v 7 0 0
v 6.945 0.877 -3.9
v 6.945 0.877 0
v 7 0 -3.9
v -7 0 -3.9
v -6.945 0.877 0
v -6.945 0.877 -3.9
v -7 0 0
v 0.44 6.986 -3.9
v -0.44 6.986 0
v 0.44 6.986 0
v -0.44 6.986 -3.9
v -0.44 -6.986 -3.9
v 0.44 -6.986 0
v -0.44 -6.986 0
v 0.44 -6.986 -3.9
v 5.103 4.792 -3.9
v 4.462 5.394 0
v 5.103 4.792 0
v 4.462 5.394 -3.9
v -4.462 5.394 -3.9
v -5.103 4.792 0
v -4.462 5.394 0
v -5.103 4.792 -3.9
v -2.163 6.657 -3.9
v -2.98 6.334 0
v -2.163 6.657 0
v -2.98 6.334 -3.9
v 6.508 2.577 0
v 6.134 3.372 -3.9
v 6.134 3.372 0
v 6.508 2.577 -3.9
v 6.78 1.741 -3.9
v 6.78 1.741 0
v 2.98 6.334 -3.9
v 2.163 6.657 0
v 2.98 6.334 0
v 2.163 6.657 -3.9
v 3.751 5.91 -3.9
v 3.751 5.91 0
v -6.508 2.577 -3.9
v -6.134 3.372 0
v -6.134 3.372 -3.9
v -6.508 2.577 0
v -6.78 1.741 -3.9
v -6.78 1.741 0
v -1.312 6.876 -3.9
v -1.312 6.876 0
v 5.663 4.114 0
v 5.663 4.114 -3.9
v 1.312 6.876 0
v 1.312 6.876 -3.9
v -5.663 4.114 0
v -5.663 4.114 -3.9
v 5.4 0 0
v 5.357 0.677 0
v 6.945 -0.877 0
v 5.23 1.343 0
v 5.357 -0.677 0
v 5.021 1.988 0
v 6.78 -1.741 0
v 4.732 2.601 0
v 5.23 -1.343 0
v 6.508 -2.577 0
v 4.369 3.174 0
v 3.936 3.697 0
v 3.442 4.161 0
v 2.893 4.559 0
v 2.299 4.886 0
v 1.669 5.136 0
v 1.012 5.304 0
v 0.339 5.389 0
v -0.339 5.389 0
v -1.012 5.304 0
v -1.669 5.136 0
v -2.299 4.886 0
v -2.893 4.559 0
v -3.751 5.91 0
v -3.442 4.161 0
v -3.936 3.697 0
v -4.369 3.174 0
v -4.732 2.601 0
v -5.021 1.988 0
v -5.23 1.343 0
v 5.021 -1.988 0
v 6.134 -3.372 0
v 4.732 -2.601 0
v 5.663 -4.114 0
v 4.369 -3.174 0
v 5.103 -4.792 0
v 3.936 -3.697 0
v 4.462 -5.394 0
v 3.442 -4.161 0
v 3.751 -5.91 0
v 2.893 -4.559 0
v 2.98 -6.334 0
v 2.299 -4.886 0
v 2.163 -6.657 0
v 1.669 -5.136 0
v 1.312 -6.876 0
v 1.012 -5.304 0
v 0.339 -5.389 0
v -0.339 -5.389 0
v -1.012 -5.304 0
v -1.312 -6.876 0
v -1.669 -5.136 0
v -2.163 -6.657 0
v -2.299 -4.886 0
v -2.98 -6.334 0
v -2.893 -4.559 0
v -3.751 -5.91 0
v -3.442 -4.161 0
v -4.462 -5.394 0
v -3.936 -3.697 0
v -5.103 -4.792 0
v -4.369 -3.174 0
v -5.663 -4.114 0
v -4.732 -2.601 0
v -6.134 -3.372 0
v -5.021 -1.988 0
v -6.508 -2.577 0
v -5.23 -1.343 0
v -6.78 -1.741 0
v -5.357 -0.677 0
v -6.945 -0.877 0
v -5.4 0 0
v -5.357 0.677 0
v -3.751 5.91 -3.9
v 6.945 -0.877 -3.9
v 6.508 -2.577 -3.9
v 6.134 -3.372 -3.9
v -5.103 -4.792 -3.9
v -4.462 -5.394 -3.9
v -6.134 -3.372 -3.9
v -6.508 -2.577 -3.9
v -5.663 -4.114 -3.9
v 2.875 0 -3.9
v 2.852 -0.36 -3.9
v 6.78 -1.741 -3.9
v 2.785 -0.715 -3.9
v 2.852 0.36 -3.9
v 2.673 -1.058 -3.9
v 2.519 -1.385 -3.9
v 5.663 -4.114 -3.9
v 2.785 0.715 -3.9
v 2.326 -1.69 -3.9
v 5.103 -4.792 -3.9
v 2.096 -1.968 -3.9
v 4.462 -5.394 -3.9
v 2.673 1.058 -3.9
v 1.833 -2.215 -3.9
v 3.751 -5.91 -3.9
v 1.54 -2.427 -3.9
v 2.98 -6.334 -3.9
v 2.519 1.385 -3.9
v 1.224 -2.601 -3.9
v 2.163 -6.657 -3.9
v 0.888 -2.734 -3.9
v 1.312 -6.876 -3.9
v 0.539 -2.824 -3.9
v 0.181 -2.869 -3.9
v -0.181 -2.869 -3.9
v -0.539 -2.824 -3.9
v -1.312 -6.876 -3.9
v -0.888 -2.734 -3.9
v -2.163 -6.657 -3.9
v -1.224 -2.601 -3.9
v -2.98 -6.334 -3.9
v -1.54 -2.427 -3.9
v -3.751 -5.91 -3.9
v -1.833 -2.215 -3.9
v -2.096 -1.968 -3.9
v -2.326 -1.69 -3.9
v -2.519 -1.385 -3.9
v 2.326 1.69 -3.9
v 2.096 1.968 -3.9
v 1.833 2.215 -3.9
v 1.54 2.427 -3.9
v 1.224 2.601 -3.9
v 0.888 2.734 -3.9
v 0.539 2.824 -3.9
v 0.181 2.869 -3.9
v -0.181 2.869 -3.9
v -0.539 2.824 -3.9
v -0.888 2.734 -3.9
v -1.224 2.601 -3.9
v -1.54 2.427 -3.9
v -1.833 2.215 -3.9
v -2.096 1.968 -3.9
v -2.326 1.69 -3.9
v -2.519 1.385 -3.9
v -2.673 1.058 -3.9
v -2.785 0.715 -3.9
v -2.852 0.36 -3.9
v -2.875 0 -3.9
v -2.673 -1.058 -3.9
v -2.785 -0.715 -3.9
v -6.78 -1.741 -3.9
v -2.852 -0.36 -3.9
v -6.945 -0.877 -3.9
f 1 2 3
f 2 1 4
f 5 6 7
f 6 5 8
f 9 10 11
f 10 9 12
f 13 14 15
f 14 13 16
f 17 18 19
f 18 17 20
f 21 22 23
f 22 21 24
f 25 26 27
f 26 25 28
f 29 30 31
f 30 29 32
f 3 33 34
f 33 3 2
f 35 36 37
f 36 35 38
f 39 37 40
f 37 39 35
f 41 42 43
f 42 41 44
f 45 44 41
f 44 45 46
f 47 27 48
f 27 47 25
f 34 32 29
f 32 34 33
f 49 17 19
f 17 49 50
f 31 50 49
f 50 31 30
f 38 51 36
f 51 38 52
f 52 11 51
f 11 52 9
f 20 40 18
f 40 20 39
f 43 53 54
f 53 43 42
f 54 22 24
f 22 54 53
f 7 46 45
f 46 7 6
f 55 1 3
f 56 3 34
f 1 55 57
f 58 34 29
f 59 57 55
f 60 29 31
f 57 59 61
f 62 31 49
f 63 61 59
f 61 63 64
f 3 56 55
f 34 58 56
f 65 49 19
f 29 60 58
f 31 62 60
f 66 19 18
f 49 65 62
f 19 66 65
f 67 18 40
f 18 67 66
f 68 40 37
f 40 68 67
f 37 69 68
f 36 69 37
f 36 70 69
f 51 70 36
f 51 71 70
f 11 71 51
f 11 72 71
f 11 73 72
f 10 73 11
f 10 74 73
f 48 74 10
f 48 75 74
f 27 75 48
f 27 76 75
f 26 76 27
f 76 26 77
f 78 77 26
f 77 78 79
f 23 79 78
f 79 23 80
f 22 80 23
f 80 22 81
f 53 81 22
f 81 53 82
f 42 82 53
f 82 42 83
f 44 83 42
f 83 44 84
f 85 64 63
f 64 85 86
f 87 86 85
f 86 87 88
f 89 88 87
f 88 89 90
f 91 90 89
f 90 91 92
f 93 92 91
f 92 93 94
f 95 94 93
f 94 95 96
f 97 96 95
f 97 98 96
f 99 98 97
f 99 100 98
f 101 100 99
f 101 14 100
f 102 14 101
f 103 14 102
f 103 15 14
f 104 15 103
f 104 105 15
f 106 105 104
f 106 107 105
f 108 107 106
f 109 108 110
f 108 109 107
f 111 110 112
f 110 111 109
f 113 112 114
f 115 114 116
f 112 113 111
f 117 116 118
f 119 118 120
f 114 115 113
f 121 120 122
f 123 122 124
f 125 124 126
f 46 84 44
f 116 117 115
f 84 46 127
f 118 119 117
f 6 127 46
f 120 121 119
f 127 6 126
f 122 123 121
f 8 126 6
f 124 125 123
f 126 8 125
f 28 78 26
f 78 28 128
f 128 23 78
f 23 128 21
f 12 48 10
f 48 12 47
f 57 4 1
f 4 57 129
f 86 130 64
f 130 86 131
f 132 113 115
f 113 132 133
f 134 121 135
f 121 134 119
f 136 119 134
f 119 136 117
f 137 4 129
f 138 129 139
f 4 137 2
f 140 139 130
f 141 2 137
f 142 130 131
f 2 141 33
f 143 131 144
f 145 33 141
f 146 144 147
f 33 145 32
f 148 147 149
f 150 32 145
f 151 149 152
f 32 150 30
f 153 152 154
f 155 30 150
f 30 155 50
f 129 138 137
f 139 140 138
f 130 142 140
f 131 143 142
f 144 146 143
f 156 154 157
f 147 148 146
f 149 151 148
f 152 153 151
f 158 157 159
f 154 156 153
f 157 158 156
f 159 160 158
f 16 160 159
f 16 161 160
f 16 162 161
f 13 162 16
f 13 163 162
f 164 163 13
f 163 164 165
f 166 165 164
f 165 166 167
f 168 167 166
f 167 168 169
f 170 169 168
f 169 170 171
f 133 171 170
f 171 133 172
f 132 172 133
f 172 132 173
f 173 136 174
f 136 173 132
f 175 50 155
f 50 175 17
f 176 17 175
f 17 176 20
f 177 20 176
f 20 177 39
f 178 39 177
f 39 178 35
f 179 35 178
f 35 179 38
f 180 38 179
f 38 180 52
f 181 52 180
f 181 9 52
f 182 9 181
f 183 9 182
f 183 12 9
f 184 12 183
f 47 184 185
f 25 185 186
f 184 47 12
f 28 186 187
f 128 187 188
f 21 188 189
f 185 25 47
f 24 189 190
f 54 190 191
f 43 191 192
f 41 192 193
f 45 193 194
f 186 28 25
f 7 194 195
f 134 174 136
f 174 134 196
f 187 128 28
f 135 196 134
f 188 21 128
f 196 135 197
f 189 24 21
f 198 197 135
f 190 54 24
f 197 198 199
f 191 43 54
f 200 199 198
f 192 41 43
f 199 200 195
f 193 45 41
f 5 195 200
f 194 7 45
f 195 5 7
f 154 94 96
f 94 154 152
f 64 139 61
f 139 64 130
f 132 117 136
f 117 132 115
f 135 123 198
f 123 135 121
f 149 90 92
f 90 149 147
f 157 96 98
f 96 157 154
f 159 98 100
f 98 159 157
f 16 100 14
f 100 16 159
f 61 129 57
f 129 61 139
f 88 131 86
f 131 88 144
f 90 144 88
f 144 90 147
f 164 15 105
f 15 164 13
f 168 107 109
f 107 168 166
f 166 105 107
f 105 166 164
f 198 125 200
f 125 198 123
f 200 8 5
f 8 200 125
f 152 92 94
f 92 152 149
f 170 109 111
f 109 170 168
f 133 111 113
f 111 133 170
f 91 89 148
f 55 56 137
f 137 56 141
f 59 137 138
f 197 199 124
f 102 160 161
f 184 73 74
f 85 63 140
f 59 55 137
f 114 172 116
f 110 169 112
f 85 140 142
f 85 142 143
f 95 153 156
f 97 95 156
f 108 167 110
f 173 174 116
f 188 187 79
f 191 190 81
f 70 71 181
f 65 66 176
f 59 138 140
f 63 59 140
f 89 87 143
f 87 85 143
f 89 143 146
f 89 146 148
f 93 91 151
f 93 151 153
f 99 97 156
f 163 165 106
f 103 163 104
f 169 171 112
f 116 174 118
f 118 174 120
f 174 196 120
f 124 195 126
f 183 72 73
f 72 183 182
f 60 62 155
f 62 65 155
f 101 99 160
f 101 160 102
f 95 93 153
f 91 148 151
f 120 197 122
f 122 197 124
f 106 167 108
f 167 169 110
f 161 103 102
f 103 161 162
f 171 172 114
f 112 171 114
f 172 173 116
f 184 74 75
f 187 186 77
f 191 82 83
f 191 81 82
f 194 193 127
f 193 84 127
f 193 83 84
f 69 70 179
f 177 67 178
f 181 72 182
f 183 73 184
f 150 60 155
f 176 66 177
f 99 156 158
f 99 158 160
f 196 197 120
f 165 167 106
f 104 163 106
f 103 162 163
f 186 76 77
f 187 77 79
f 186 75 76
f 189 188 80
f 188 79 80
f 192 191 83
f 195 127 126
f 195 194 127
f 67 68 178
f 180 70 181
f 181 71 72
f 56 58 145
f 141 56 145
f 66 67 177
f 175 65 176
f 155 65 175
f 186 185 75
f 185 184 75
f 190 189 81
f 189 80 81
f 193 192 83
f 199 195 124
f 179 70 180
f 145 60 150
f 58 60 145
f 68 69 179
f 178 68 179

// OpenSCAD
$fn = 50;


difference() {
	union() {
		translate(v = [0, 0, -3.9000000000]) {
			cylinder(h = 3.9000000000, r = 7.0000000000);
		}
		translate(v = [0, 0, -6.9000000000]) {
			cylinder(h = 6.9000000000, r = 2.8750000000);
		}
	}
	union() {
		translate(v = [0, 0, 0]) {
			rotate(a = [0, 0, 0]) {
				difference() {
					union() {
						translate(v = [0, 0, -6.9000000000]) {
							cylinder(h = 6.9000000000, r = 2.6000000000);
						}
						translate(v = [0, 0, -3.9000000000]) {
							cylinder(h = 3.9000000000, r1 = 2.8750000000, r2 = 5.4000000000);
						}
						translate(v = [0, 0, -6.9000000000]) {
							cylinder(h = 6.9000000000, r = 2.8750000000);
						}
						translate(v = [0, 0, -6.9000000000]) {
							cylinder(h = 6.9000000000, r = 2.6000000000);
						}
					}
					union();
				}
			}
		}
	}
}
